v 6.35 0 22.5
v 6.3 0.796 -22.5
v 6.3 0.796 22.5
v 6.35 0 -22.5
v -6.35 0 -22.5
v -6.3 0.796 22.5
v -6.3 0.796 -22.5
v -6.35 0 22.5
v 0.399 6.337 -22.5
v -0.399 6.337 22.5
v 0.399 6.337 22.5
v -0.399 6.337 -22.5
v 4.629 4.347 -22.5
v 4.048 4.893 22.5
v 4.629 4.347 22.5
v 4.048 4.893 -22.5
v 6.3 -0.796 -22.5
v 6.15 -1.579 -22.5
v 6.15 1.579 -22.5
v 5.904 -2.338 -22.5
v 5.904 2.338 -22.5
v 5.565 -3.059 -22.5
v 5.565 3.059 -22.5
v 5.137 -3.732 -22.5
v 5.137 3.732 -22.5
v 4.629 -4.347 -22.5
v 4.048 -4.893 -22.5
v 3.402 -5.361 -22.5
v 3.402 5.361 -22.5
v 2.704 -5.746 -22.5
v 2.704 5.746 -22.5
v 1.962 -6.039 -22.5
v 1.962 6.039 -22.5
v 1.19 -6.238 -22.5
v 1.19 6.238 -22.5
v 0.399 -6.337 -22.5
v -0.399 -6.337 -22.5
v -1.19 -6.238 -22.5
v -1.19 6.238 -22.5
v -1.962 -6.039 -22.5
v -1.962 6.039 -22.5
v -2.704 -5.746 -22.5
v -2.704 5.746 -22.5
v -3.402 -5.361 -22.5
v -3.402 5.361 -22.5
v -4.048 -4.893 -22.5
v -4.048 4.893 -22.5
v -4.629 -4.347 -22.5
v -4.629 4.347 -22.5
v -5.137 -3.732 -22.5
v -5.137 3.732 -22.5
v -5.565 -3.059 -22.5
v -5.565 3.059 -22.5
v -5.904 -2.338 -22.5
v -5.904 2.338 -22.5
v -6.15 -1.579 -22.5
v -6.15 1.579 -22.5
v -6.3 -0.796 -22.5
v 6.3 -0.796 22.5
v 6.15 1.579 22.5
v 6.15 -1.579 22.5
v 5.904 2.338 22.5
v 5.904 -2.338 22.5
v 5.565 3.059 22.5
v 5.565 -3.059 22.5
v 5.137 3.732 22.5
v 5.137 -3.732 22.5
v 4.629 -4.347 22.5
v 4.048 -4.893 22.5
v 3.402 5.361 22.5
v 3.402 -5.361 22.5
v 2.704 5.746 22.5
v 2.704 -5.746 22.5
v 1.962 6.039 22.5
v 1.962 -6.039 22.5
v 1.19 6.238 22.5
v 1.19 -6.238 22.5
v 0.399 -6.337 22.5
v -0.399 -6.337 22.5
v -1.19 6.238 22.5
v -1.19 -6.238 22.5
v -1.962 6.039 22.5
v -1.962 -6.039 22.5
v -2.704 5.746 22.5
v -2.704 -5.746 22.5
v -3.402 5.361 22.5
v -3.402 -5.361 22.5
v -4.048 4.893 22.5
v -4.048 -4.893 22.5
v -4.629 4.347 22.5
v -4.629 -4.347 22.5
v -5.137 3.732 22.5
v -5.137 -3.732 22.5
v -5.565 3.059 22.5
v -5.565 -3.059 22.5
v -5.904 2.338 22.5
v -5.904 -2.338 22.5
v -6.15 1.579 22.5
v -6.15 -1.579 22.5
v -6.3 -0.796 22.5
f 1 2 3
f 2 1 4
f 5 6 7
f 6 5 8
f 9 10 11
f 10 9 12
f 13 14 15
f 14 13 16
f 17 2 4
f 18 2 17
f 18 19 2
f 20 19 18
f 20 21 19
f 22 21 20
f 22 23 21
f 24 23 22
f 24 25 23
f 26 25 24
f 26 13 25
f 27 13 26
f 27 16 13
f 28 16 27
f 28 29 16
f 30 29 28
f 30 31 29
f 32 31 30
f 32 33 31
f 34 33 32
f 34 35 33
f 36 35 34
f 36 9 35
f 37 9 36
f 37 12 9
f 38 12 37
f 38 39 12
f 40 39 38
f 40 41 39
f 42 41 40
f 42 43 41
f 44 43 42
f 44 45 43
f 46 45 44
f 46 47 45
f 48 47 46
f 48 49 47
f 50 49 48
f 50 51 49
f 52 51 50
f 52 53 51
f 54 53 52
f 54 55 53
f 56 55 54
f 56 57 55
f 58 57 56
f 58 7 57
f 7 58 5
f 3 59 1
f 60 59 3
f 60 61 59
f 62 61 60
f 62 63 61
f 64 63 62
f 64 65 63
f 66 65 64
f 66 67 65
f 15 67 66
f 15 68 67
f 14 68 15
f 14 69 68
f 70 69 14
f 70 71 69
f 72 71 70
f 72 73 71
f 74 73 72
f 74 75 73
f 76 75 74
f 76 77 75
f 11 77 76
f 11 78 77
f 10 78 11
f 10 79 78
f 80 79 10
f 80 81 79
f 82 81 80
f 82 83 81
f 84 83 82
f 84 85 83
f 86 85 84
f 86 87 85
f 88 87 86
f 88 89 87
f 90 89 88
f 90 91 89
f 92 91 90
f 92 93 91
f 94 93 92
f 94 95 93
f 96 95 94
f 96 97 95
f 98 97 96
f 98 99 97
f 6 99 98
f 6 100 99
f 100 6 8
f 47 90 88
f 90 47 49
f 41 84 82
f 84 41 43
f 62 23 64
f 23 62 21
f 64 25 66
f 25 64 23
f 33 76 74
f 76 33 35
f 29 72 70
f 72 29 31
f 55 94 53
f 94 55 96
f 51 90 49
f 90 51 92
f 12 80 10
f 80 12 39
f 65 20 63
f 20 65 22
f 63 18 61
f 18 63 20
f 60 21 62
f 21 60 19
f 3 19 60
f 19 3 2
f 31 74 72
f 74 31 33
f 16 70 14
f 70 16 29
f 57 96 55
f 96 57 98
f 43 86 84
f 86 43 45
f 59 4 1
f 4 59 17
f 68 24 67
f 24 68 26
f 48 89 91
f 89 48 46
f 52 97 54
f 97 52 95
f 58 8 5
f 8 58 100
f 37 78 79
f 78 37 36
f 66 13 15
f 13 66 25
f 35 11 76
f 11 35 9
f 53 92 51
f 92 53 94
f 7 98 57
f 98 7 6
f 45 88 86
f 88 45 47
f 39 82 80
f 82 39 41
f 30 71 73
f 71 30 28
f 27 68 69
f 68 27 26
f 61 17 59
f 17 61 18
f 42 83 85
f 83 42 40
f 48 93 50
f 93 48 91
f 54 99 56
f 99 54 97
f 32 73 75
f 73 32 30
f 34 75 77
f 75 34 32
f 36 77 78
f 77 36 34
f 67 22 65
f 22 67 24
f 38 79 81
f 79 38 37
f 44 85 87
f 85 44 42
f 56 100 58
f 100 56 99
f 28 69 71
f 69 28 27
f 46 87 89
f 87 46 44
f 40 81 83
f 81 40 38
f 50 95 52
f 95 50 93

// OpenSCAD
$fn = 50;


difference() {
	union() {
		translate(v = [0, 0, -22.5000000000]) {
			cylinder(h = 45, r = 6.3500000000);
		}
	}
	union() {
		translate(v = [0, 0, -100.0000000000]) {
			cylinder(h = 200, r = 0);
		}
	}
}
